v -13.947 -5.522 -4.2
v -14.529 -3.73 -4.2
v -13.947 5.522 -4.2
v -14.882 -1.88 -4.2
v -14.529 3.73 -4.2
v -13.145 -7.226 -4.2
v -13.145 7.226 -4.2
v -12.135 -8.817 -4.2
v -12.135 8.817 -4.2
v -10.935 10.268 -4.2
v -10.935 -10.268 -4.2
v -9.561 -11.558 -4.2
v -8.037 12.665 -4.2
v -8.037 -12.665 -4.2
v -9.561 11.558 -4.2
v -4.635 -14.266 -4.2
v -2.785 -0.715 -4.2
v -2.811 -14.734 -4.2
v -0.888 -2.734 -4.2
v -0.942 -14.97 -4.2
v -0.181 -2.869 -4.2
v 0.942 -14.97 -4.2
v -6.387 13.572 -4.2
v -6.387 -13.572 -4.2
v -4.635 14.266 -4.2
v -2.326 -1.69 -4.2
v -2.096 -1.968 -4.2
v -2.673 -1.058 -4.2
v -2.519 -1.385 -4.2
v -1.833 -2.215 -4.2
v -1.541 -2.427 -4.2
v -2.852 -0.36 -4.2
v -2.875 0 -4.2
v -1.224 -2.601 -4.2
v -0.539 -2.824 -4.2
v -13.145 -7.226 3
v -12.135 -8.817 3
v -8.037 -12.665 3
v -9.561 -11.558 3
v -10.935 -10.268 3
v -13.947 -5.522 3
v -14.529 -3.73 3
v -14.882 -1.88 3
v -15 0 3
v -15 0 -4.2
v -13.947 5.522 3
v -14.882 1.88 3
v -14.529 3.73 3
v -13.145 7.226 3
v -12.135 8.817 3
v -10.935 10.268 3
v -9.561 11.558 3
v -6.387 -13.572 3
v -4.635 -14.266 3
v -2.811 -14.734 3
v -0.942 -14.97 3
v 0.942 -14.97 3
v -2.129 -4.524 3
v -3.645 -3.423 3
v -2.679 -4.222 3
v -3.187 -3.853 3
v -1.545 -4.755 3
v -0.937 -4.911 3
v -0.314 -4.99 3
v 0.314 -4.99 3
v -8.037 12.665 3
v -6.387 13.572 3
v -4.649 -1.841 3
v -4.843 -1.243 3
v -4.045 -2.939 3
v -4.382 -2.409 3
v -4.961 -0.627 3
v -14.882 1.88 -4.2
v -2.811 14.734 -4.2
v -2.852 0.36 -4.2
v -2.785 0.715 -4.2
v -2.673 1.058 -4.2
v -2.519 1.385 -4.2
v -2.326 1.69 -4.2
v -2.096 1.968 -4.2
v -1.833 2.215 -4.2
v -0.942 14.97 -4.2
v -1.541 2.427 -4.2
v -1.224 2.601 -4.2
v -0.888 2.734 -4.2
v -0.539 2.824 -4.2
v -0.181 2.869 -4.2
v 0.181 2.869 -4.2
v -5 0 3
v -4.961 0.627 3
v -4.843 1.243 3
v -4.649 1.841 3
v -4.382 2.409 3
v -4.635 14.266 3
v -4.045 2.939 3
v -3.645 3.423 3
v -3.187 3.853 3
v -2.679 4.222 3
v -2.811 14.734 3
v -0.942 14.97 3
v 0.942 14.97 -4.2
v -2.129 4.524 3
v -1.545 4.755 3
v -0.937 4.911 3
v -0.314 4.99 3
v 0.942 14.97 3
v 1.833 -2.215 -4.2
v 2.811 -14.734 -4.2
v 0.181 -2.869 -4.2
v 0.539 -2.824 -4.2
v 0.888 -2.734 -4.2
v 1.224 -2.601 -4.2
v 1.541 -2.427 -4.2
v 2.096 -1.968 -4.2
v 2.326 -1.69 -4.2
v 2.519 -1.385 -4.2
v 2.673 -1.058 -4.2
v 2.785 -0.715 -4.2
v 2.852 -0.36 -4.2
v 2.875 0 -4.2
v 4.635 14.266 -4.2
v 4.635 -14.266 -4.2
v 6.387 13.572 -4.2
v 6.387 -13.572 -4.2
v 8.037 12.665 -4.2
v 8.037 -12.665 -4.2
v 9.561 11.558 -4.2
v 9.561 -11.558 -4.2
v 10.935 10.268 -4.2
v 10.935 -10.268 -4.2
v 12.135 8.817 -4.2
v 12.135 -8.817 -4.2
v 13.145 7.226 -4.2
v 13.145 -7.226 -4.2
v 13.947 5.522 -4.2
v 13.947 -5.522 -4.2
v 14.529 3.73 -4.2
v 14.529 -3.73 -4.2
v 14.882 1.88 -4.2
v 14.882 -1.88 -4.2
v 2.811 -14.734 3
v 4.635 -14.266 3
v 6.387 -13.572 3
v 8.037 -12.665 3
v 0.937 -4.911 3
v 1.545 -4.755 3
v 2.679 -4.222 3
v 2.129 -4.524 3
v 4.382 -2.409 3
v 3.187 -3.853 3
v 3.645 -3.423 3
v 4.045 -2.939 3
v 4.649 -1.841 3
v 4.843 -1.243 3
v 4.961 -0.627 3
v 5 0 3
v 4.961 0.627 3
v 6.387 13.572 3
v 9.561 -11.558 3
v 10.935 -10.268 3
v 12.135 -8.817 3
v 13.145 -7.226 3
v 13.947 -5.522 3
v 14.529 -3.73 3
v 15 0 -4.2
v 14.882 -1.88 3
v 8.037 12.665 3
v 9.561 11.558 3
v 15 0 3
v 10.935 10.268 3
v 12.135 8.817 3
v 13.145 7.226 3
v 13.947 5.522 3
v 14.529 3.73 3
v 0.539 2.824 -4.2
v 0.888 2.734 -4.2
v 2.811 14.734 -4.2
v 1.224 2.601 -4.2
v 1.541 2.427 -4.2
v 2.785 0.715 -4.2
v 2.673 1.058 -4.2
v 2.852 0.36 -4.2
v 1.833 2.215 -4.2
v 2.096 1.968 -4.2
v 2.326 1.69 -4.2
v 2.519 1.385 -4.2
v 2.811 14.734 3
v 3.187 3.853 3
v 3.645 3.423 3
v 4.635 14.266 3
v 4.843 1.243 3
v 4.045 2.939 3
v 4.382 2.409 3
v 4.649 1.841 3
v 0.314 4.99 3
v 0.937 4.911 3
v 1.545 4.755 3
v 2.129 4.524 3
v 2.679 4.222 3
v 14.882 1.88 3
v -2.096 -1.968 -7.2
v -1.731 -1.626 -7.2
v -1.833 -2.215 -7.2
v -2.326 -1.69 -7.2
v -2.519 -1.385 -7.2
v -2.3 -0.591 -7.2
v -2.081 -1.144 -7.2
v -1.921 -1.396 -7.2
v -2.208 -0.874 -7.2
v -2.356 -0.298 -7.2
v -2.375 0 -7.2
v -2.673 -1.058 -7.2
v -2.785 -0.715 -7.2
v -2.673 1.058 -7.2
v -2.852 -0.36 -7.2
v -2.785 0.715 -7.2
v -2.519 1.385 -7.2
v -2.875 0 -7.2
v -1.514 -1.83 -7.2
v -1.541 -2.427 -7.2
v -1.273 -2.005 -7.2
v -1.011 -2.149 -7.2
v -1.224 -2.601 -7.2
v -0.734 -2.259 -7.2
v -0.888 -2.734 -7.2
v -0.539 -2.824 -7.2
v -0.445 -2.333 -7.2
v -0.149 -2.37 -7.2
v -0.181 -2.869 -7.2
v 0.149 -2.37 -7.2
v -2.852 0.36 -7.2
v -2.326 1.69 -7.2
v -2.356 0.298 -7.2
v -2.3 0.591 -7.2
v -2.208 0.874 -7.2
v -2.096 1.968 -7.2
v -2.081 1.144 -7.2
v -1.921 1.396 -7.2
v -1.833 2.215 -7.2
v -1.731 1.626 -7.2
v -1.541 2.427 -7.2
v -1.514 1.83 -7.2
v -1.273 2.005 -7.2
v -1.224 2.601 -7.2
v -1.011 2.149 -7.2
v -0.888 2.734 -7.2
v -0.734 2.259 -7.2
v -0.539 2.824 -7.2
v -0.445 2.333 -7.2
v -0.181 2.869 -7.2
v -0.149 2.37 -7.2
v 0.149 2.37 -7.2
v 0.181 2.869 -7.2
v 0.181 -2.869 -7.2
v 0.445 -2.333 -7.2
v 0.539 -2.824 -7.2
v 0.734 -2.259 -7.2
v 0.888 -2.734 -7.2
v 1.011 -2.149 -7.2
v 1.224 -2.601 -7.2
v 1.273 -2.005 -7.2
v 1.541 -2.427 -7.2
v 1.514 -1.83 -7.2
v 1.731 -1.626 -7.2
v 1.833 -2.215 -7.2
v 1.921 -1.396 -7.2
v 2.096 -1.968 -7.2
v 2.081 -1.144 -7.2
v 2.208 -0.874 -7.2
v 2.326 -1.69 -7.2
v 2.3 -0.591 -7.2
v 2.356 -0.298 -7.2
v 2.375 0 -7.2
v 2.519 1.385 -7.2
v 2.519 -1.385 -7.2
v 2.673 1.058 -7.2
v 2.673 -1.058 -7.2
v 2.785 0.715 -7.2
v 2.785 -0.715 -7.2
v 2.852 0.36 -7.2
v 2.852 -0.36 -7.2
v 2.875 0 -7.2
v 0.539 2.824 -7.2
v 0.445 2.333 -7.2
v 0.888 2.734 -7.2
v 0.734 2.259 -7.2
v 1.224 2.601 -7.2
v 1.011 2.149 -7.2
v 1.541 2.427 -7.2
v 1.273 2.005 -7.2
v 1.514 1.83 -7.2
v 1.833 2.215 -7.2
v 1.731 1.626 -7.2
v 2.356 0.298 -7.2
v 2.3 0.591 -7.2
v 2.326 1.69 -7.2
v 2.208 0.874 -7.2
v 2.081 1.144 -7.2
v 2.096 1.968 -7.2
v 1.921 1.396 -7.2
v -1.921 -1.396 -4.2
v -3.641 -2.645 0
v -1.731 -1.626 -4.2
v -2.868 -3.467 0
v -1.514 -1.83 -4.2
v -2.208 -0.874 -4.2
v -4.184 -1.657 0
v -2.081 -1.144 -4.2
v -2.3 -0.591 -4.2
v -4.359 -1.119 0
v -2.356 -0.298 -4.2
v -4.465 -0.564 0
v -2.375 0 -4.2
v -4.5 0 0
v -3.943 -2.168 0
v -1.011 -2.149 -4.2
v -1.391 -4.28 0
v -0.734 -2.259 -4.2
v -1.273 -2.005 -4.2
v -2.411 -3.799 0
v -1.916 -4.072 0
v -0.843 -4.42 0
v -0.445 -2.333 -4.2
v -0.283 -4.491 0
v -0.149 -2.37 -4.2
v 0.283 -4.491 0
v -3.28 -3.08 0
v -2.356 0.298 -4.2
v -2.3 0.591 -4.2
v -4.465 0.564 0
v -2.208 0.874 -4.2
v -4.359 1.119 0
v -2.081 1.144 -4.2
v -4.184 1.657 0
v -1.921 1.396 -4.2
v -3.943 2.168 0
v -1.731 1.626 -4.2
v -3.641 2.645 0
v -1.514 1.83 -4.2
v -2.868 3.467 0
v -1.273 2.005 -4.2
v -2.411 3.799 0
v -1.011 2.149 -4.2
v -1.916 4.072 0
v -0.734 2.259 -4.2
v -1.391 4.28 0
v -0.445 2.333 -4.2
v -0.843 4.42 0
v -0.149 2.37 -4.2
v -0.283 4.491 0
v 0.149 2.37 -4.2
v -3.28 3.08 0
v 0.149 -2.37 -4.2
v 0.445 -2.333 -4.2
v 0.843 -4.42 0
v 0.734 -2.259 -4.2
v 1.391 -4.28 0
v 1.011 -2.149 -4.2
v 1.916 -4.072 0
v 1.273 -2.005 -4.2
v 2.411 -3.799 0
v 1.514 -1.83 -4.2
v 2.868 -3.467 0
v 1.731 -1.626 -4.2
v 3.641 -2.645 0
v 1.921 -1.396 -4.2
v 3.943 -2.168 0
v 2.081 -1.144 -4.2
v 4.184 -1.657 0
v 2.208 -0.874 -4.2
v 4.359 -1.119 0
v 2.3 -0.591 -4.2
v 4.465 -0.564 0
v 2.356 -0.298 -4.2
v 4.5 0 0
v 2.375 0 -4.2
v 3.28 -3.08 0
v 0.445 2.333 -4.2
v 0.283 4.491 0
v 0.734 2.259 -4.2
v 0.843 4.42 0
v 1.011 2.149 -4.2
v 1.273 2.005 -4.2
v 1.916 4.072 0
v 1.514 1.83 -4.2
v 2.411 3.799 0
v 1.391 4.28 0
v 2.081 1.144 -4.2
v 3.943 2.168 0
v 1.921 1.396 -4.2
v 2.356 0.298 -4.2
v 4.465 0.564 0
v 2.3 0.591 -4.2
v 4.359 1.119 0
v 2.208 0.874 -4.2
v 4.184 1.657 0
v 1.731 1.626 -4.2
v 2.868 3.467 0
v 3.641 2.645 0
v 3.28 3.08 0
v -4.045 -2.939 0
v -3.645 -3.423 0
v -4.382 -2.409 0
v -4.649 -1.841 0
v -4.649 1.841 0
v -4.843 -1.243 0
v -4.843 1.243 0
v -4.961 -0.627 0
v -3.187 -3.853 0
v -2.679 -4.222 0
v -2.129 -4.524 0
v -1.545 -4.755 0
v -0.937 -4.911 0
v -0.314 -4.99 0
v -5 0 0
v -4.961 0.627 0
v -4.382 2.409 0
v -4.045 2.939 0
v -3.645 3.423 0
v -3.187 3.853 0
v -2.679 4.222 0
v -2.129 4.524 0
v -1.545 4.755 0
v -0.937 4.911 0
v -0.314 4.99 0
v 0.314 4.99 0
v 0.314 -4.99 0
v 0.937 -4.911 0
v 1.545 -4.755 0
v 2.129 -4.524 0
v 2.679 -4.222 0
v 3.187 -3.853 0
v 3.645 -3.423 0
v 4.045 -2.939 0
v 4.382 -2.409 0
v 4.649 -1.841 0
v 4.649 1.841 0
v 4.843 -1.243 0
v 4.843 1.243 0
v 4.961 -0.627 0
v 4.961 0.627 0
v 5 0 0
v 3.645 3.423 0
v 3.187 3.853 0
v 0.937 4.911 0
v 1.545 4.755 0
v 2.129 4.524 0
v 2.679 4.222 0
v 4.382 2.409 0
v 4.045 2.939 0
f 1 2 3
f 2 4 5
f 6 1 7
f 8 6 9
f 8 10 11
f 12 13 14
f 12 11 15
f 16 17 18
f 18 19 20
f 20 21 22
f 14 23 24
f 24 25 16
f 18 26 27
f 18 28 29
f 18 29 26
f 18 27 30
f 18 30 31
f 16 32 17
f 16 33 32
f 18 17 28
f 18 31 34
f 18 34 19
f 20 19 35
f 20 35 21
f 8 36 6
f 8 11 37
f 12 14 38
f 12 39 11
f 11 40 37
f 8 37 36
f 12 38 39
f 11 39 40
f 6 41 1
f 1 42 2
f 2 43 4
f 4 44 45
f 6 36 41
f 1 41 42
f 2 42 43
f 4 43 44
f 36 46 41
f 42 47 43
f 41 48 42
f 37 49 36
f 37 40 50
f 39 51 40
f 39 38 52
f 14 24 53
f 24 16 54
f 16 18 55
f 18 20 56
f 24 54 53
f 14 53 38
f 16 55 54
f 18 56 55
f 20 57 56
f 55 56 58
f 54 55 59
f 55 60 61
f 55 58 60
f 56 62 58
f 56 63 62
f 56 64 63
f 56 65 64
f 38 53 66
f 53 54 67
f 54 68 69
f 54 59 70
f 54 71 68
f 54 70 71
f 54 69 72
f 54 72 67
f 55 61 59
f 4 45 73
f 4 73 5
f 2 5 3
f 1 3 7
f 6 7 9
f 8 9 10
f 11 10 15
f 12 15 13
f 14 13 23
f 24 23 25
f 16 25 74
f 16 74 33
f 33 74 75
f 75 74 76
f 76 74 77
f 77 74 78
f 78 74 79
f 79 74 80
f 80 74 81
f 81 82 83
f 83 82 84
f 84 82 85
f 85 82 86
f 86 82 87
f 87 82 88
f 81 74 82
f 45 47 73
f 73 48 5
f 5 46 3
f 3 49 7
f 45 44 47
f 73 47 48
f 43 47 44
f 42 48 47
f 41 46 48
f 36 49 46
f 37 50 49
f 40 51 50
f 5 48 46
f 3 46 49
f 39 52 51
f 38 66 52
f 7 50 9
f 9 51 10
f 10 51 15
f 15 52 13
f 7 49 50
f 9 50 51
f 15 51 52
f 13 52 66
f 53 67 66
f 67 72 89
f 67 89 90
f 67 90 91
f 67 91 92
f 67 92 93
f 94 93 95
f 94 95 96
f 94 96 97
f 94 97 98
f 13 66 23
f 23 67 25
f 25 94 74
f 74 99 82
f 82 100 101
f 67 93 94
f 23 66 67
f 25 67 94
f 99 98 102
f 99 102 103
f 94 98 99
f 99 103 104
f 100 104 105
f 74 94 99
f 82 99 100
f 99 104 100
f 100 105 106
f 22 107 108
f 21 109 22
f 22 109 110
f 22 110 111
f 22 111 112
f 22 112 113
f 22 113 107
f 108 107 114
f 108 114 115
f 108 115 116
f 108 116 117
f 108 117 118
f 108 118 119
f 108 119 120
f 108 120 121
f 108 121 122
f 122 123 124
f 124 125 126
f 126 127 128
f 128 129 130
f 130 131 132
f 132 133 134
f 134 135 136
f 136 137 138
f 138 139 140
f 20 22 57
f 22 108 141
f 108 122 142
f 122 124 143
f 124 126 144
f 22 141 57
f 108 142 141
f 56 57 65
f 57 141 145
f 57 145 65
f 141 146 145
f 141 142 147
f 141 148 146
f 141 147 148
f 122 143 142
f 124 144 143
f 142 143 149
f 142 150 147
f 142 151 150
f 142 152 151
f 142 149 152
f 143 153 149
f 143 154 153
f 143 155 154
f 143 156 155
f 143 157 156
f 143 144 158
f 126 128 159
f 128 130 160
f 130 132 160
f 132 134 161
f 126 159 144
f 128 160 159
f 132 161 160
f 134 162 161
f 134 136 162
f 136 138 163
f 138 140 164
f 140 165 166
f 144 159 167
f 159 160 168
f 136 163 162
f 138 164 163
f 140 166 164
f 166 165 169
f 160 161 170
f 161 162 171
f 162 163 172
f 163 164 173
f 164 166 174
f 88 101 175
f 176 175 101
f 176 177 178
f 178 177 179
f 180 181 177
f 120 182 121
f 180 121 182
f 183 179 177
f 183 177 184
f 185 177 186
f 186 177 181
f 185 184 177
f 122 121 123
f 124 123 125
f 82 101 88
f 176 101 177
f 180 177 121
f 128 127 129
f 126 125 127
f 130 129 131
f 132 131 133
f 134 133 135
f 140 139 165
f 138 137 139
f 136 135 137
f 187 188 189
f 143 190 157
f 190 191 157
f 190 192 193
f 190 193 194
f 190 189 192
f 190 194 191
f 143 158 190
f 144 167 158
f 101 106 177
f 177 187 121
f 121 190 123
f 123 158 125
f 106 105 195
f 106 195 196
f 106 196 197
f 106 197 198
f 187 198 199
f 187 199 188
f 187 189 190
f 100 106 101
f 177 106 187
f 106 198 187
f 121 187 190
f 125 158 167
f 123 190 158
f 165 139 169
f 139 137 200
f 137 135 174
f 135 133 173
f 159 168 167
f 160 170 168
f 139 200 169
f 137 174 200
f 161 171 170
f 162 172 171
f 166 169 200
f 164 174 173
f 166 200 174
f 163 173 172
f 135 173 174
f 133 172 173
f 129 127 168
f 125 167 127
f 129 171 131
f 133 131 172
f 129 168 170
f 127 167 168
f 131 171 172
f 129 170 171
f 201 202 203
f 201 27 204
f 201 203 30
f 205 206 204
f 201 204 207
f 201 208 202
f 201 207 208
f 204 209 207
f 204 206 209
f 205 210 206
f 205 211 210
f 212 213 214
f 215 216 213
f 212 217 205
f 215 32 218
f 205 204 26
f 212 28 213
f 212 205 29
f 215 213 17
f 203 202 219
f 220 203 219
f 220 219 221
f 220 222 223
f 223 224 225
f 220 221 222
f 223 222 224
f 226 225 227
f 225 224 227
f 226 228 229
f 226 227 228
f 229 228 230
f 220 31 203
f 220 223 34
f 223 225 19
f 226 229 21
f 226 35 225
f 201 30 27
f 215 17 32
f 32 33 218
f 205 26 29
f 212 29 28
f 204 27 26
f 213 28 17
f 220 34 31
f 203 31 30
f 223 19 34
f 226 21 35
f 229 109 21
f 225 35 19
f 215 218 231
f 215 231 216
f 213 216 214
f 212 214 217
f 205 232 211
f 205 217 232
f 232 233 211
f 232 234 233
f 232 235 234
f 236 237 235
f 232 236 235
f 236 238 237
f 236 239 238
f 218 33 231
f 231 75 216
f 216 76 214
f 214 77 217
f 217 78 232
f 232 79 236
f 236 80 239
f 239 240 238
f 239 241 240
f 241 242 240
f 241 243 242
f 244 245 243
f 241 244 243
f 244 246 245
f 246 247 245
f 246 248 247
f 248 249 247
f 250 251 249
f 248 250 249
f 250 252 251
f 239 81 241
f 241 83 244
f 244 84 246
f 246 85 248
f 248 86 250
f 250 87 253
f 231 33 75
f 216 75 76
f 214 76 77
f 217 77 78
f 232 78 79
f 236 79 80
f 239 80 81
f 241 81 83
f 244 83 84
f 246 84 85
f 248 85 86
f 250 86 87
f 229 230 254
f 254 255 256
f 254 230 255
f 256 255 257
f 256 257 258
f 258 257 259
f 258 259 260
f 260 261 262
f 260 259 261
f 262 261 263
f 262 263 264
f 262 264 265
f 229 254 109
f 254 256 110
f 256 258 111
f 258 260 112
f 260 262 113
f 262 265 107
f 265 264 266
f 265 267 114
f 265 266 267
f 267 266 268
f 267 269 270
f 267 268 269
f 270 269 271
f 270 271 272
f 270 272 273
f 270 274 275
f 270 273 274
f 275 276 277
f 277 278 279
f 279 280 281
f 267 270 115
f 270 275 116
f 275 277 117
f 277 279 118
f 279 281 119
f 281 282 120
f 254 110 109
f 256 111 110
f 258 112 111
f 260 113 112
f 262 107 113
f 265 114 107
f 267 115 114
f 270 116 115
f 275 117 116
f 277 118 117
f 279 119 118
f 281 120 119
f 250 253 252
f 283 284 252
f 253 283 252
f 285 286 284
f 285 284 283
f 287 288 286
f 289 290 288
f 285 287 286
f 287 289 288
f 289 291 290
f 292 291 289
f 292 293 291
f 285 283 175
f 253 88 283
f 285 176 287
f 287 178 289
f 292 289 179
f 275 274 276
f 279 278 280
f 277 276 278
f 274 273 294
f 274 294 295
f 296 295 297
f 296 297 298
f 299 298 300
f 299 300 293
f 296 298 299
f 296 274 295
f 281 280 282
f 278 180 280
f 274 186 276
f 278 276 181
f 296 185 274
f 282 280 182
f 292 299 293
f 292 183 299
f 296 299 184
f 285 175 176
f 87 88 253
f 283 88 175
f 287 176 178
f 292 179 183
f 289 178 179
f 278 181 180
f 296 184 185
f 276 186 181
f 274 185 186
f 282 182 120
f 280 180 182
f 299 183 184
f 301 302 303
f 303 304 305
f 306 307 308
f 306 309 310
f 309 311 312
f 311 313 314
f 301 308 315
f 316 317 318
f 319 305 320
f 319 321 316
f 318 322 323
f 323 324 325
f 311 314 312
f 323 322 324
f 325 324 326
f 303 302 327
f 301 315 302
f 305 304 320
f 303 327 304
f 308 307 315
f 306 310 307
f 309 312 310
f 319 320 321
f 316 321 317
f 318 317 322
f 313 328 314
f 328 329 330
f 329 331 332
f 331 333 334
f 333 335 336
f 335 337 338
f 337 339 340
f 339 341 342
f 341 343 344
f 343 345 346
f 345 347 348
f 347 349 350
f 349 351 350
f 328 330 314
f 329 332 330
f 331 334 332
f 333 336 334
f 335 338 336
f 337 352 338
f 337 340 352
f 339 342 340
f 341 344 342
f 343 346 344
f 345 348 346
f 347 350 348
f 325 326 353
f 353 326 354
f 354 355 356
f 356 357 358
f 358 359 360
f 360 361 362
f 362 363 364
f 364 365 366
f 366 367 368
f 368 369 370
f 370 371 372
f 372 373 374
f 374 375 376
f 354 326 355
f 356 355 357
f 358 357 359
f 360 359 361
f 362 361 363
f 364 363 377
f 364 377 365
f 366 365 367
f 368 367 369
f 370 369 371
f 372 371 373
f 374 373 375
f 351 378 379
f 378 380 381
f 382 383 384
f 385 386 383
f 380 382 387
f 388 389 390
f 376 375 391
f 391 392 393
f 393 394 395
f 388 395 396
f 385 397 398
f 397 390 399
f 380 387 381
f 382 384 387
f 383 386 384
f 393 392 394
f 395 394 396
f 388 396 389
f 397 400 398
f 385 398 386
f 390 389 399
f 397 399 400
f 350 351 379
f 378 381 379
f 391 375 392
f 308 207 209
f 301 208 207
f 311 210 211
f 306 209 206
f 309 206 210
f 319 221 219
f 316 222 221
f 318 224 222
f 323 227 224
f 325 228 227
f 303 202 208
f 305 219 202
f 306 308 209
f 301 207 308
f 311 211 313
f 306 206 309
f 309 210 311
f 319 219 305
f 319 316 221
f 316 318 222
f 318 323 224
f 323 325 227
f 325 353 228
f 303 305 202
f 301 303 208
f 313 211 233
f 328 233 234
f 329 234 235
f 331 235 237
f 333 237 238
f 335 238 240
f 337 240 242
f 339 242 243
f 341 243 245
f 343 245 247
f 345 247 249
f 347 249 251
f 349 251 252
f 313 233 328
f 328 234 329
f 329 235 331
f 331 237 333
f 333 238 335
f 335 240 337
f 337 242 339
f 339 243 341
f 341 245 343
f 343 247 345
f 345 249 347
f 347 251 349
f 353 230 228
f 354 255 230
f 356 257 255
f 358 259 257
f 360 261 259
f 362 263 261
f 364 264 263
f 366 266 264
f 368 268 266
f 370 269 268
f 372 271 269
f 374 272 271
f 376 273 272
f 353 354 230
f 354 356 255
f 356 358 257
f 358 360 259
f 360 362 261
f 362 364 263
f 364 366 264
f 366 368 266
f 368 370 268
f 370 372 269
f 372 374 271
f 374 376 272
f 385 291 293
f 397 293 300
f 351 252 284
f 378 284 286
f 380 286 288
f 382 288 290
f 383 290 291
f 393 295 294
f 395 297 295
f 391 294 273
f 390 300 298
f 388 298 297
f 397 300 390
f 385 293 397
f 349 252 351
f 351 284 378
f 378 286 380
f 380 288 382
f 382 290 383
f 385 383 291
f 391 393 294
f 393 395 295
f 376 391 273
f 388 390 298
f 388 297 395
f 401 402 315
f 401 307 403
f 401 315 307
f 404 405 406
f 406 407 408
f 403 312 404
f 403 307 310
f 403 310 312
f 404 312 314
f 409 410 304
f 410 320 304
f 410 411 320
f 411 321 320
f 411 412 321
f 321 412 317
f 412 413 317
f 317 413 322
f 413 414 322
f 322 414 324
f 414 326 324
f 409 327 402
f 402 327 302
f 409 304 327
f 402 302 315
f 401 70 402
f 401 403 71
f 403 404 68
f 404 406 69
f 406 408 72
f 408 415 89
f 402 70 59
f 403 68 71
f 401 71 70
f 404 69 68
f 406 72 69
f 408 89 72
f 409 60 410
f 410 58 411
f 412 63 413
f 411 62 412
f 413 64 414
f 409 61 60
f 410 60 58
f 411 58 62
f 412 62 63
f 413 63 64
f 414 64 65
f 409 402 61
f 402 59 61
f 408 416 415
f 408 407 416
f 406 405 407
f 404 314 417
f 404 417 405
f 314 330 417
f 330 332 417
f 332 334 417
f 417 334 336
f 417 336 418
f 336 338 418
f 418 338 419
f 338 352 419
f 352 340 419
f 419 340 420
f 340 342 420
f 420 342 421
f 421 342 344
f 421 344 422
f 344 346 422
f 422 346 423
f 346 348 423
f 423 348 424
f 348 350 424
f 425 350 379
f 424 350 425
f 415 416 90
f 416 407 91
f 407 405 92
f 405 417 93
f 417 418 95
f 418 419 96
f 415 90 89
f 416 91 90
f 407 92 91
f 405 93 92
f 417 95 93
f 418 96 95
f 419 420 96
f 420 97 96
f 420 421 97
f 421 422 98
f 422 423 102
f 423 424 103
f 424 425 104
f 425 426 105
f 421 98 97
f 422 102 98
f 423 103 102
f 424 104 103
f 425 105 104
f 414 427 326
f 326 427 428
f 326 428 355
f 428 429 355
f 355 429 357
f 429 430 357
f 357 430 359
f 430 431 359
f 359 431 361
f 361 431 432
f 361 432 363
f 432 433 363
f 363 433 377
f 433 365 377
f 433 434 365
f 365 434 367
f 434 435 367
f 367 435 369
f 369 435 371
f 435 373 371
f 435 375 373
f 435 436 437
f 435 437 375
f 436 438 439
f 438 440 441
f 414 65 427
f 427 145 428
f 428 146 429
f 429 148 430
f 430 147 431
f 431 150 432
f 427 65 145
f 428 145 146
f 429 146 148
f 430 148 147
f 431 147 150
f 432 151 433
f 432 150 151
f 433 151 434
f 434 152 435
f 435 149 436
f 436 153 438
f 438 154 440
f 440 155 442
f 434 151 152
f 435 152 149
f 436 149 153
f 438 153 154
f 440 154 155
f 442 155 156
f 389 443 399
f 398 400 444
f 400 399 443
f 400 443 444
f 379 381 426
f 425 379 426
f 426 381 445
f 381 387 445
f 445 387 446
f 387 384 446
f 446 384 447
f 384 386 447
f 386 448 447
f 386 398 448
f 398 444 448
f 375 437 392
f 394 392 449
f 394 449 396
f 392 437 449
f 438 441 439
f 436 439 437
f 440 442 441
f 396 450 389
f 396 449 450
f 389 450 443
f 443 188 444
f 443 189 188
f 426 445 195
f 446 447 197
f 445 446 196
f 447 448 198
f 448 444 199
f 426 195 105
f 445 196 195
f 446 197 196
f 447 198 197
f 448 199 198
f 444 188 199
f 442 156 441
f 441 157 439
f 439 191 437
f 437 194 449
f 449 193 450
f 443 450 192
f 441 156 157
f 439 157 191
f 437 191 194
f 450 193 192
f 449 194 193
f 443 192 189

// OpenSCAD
$fn = 50;


difference() {
	union() {
		translate(v = [0, 0, -4.2000000000]) {
			cylinder(h = 7.2000000000, r = 15.0000000000);
		}
		#translate(v = [0, 0, -7.2000000000]) {
			cylinder(h = 7.2000000000, r = 2.8750000000);
		}
	}
	union() {
		translate(v = [0, 0, 0]) {
			rotate(a = [0, 0, 0]) {
				difference() {
					union() {
						translate(v = [0, 0, -7.2000000000]) {
							cylinder(h = 7.2000000000, r = 2.2500000000);
						}
						translate(v = [0, 0, -4.2000000000]) {
							cylinder(h = 4.2000000000, r1 = 2.3750000000, r2 = 4.5000000000);
						}
						translate(v = [0, 0, -7.2000000000]) {
							cylinder(h = 7.2000000000, r = 2.3750000000);
						}
						translate(v = [0, 0, -7.2000000000]) {
							cylinder(h = 7.2000000000, r = 2.2500000000);
						}
					}
					union();
				}
			}
		}
		#cylinder(h = 3, r = 5.0000000000);
	}
}
